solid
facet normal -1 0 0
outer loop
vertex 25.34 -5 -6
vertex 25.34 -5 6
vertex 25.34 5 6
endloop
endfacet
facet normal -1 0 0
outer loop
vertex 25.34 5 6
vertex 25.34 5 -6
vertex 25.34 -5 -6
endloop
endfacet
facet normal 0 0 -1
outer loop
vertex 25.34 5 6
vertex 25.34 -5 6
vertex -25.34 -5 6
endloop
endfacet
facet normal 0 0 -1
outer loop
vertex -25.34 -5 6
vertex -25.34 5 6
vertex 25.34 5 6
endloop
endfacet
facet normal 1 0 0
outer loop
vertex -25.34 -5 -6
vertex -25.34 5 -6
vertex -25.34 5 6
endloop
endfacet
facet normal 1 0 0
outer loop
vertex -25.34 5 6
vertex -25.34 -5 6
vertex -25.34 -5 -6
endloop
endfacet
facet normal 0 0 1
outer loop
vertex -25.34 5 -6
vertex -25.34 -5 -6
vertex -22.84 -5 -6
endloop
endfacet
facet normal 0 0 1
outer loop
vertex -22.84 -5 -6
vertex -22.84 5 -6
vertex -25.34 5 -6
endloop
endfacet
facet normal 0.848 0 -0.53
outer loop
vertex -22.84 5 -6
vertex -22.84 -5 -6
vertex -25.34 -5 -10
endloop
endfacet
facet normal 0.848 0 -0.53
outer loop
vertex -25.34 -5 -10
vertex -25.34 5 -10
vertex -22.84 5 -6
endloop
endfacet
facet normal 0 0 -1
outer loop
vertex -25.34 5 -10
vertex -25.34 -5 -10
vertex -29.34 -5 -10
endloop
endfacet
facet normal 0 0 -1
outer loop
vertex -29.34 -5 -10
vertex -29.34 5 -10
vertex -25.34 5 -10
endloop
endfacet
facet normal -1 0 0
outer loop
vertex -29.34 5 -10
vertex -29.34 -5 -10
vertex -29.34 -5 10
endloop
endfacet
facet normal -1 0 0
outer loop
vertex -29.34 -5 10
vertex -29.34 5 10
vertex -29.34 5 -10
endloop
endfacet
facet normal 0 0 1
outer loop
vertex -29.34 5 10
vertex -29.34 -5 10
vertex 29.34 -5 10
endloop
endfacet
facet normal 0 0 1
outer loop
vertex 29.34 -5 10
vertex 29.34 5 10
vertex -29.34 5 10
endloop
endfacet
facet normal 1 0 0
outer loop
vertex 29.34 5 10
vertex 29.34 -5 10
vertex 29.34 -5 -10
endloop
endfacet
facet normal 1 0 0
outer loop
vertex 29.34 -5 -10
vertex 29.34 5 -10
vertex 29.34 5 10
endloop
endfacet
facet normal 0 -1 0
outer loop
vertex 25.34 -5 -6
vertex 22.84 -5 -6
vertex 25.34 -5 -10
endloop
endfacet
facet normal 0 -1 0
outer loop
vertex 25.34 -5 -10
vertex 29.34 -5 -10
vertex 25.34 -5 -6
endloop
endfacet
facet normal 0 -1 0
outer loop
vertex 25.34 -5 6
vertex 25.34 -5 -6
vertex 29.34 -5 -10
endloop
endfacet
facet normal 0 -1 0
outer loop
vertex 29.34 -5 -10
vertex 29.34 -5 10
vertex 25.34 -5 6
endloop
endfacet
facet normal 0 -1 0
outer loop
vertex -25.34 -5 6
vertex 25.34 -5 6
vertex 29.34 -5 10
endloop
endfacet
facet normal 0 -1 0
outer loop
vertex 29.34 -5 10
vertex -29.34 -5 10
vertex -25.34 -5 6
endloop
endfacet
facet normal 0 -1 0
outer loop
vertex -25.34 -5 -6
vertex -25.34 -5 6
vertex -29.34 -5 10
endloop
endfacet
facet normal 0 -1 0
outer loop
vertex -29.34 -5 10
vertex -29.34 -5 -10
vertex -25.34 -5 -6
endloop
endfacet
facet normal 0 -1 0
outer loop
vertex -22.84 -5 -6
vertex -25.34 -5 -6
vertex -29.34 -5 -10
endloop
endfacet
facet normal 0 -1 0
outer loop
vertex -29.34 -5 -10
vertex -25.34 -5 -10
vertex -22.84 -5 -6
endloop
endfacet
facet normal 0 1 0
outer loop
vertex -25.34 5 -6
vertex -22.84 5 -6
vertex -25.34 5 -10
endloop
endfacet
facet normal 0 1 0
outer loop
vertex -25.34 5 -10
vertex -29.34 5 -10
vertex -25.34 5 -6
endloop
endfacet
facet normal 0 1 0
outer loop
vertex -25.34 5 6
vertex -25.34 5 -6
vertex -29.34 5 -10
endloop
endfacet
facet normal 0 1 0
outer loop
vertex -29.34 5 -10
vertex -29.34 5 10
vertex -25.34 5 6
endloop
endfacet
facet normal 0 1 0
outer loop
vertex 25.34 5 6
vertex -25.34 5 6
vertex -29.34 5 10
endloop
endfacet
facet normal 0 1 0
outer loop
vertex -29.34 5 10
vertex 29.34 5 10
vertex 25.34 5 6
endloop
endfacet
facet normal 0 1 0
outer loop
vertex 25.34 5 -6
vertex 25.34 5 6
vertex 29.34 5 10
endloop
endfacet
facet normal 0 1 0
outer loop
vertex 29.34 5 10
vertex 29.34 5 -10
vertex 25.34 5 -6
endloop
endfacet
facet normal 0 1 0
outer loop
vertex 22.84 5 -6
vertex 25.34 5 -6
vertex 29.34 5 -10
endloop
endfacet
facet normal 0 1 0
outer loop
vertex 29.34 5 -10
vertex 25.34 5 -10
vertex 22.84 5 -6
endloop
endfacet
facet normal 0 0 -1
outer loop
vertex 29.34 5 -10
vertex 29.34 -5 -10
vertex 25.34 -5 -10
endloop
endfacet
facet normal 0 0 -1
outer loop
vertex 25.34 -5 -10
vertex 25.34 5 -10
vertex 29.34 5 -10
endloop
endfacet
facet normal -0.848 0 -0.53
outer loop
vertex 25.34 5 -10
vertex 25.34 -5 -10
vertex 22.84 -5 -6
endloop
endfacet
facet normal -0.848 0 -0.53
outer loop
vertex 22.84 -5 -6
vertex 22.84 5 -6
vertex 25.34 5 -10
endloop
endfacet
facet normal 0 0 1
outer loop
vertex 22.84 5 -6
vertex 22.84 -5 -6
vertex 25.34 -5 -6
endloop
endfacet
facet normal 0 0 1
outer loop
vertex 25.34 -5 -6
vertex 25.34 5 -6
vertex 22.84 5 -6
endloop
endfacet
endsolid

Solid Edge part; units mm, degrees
sketch "Sketch1" plane through (0, 0, 0) normal (0, -1, 0) x (1, 0, 0)
  line L0 (-29.34, -10) -> (-25.34, -10)
  line L1 (-25.34, -10) -> (-25.34, 6)
  line L2 (-25.34, 6) -> (25.34, 6)
  line L3 (25.34, 6) -> (25.34, -10)
  line L4 (25.34, -10) -> (29.34, -10)
  line L5 (29.34, -10) -> (29.34, 10)
  line L6 (29.34, 10) -> (-29.34, 10)
  line L7 (-29.34, 10) -> (-29.34, -10)
  dimension "D1" = 4
  dimension "D2" = 4
  dimension "D3" = 58.68
  dimension "D4" = 20
  dimension "D5" = 16
extrude "Protrusion1" add sketch "Sketch1" along normal mid plane 10
sketch "Sketch2" plane through (0, 0, 0) normal (0, -1, 0) x (1, 0, 0)
  line L0 (-25.34, -10) -> (-25.34, -6)
  line L1 (-25.34, -6) -> (-22.84, -6)
  line L2 (-22.84, -6) -> (-25.34, -10)
  dimension "D1" = 2.5
  dimension "D2" = 4
extrude "ExtrudedProtrusion_3" add sketch "Sketch2" along normal mid plane 10
sketch "Sketch3" plane through (0, 0, 0) normal (0, -1, 0) x (1, 0, 0)
  line L0 (25.34, -10) -> (25.34, -6)
  line L1 (25.34, -6) -> (22.84, -6)
  line L2 (22.84, -6) -> (25.34, -10)
  dimension "D1" = 2.5
  dimension "D2" = 4
extrude "ExtrudedProtrusion_4" add sketch "Sketch3" along normal mid plane 10
